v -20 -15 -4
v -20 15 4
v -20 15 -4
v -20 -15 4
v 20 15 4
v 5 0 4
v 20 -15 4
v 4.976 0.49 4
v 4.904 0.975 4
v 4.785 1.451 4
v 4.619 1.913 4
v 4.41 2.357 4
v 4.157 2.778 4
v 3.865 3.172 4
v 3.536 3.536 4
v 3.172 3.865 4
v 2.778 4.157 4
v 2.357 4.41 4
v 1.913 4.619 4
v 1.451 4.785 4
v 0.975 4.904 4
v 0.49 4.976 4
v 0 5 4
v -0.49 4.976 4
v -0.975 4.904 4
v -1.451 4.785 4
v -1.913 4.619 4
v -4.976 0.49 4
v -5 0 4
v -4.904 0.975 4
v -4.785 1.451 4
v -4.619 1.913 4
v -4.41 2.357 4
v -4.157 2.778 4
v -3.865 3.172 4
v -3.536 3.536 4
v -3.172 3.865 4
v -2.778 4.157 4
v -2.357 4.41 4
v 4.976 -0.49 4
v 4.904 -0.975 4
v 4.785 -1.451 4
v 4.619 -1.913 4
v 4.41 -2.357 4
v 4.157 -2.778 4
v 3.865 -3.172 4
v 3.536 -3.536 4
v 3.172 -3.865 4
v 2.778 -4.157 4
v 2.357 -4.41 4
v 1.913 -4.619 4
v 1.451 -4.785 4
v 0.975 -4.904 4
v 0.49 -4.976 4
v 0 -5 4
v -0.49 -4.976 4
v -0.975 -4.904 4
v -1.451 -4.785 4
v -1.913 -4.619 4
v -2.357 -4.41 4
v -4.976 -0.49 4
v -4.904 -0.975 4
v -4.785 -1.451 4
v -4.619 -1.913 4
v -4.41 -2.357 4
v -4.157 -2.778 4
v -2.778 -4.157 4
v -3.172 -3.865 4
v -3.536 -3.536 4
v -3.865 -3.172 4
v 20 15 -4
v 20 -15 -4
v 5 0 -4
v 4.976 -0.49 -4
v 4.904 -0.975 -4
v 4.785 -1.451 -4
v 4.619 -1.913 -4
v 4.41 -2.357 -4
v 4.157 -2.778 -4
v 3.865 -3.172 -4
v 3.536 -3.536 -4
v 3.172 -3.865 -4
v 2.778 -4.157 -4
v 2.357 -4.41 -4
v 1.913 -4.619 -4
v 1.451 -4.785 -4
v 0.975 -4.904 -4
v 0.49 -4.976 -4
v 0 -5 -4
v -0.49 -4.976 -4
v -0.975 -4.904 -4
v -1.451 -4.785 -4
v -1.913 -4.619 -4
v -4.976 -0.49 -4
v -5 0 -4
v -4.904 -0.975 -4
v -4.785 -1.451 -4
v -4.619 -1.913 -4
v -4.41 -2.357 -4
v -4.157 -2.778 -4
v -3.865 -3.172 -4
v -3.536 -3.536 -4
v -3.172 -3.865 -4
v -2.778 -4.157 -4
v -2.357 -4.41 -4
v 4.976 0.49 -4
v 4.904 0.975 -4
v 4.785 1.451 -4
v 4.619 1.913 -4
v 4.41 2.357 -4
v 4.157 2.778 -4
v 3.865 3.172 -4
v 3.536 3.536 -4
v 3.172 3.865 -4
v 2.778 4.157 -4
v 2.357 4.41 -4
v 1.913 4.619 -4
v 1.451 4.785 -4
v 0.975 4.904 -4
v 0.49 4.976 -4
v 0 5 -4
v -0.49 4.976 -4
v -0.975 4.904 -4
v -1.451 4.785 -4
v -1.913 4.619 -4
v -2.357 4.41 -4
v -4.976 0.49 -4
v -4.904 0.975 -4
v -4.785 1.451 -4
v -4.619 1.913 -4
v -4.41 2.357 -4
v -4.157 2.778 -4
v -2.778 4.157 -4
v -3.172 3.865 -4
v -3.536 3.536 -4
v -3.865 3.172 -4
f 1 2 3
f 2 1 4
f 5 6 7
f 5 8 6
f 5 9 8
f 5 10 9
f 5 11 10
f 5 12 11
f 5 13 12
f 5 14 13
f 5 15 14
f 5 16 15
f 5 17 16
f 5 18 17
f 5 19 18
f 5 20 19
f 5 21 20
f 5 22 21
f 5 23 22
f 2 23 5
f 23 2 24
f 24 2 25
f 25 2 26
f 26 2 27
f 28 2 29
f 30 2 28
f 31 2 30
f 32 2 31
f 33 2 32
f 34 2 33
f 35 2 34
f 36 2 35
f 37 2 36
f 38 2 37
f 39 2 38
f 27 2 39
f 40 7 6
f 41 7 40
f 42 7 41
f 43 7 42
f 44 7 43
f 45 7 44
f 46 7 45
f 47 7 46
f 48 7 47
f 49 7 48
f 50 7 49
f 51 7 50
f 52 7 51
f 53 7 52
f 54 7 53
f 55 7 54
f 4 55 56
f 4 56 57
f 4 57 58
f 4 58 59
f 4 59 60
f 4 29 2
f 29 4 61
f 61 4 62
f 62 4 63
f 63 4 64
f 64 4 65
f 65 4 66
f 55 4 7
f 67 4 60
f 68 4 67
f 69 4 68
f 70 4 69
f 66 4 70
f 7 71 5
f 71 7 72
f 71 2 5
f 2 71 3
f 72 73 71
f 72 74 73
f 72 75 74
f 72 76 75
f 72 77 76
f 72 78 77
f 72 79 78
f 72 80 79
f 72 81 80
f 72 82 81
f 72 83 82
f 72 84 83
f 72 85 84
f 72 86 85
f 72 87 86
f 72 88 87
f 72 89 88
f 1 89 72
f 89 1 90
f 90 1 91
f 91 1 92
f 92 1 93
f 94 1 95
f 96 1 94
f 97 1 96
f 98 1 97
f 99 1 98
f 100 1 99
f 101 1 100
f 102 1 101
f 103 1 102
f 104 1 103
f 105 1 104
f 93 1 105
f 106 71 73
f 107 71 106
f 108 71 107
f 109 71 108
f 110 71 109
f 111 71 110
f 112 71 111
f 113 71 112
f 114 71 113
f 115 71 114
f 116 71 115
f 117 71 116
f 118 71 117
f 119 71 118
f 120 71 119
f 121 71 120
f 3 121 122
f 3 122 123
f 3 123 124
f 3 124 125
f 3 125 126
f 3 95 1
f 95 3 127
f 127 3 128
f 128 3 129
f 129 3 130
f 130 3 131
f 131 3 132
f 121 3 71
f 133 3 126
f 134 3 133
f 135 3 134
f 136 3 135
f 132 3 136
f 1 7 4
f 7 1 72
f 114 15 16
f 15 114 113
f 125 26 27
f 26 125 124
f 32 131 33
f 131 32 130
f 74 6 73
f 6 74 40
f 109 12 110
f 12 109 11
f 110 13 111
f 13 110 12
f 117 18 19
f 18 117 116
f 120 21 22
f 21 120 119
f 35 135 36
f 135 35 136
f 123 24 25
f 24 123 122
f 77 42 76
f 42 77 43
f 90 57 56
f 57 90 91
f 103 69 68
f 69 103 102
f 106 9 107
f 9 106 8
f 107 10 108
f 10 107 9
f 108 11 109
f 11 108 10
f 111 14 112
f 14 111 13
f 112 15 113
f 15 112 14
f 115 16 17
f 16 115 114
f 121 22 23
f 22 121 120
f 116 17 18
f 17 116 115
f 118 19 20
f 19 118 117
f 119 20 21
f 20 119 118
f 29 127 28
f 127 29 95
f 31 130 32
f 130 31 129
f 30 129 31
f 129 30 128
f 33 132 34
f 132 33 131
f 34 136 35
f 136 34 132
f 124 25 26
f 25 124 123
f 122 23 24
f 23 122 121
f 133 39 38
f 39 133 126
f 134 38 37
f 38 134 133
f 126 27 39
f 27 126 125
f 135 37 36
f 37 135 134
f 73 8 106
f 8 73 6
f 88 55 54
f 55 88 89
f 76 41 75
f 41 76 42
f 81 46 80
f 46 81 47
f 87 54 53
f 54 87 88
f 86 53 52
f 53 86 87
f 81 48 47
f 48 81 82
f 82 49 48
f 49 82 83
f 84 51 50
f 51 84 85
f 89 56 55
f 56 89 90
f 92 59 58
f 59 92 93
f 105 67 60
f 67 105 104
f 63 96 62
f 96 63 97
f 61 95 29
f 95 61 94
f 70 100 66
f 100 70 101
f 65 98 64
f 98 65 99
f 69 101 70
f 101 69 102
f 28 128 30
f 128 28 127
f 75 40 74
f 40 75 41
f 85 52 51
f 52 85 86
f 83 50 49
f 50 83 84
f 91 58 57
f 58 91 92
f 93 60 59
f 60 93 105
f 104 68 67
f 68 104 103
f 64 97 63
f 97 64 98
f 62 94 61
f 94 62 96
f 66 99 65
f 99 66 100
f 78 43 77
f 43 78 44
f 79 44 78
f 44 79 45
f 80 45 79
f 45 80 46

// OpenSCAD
// Rectangular plate with centered hole
difference() {
    // Base plate (length = 40, width = 30, height = 8)
    cube([40, 30, 8], center=true);
    
    // Cylindrical hole running along Z axis
    cylinder(h=12, d=10, center=true, $fn=64);
}
